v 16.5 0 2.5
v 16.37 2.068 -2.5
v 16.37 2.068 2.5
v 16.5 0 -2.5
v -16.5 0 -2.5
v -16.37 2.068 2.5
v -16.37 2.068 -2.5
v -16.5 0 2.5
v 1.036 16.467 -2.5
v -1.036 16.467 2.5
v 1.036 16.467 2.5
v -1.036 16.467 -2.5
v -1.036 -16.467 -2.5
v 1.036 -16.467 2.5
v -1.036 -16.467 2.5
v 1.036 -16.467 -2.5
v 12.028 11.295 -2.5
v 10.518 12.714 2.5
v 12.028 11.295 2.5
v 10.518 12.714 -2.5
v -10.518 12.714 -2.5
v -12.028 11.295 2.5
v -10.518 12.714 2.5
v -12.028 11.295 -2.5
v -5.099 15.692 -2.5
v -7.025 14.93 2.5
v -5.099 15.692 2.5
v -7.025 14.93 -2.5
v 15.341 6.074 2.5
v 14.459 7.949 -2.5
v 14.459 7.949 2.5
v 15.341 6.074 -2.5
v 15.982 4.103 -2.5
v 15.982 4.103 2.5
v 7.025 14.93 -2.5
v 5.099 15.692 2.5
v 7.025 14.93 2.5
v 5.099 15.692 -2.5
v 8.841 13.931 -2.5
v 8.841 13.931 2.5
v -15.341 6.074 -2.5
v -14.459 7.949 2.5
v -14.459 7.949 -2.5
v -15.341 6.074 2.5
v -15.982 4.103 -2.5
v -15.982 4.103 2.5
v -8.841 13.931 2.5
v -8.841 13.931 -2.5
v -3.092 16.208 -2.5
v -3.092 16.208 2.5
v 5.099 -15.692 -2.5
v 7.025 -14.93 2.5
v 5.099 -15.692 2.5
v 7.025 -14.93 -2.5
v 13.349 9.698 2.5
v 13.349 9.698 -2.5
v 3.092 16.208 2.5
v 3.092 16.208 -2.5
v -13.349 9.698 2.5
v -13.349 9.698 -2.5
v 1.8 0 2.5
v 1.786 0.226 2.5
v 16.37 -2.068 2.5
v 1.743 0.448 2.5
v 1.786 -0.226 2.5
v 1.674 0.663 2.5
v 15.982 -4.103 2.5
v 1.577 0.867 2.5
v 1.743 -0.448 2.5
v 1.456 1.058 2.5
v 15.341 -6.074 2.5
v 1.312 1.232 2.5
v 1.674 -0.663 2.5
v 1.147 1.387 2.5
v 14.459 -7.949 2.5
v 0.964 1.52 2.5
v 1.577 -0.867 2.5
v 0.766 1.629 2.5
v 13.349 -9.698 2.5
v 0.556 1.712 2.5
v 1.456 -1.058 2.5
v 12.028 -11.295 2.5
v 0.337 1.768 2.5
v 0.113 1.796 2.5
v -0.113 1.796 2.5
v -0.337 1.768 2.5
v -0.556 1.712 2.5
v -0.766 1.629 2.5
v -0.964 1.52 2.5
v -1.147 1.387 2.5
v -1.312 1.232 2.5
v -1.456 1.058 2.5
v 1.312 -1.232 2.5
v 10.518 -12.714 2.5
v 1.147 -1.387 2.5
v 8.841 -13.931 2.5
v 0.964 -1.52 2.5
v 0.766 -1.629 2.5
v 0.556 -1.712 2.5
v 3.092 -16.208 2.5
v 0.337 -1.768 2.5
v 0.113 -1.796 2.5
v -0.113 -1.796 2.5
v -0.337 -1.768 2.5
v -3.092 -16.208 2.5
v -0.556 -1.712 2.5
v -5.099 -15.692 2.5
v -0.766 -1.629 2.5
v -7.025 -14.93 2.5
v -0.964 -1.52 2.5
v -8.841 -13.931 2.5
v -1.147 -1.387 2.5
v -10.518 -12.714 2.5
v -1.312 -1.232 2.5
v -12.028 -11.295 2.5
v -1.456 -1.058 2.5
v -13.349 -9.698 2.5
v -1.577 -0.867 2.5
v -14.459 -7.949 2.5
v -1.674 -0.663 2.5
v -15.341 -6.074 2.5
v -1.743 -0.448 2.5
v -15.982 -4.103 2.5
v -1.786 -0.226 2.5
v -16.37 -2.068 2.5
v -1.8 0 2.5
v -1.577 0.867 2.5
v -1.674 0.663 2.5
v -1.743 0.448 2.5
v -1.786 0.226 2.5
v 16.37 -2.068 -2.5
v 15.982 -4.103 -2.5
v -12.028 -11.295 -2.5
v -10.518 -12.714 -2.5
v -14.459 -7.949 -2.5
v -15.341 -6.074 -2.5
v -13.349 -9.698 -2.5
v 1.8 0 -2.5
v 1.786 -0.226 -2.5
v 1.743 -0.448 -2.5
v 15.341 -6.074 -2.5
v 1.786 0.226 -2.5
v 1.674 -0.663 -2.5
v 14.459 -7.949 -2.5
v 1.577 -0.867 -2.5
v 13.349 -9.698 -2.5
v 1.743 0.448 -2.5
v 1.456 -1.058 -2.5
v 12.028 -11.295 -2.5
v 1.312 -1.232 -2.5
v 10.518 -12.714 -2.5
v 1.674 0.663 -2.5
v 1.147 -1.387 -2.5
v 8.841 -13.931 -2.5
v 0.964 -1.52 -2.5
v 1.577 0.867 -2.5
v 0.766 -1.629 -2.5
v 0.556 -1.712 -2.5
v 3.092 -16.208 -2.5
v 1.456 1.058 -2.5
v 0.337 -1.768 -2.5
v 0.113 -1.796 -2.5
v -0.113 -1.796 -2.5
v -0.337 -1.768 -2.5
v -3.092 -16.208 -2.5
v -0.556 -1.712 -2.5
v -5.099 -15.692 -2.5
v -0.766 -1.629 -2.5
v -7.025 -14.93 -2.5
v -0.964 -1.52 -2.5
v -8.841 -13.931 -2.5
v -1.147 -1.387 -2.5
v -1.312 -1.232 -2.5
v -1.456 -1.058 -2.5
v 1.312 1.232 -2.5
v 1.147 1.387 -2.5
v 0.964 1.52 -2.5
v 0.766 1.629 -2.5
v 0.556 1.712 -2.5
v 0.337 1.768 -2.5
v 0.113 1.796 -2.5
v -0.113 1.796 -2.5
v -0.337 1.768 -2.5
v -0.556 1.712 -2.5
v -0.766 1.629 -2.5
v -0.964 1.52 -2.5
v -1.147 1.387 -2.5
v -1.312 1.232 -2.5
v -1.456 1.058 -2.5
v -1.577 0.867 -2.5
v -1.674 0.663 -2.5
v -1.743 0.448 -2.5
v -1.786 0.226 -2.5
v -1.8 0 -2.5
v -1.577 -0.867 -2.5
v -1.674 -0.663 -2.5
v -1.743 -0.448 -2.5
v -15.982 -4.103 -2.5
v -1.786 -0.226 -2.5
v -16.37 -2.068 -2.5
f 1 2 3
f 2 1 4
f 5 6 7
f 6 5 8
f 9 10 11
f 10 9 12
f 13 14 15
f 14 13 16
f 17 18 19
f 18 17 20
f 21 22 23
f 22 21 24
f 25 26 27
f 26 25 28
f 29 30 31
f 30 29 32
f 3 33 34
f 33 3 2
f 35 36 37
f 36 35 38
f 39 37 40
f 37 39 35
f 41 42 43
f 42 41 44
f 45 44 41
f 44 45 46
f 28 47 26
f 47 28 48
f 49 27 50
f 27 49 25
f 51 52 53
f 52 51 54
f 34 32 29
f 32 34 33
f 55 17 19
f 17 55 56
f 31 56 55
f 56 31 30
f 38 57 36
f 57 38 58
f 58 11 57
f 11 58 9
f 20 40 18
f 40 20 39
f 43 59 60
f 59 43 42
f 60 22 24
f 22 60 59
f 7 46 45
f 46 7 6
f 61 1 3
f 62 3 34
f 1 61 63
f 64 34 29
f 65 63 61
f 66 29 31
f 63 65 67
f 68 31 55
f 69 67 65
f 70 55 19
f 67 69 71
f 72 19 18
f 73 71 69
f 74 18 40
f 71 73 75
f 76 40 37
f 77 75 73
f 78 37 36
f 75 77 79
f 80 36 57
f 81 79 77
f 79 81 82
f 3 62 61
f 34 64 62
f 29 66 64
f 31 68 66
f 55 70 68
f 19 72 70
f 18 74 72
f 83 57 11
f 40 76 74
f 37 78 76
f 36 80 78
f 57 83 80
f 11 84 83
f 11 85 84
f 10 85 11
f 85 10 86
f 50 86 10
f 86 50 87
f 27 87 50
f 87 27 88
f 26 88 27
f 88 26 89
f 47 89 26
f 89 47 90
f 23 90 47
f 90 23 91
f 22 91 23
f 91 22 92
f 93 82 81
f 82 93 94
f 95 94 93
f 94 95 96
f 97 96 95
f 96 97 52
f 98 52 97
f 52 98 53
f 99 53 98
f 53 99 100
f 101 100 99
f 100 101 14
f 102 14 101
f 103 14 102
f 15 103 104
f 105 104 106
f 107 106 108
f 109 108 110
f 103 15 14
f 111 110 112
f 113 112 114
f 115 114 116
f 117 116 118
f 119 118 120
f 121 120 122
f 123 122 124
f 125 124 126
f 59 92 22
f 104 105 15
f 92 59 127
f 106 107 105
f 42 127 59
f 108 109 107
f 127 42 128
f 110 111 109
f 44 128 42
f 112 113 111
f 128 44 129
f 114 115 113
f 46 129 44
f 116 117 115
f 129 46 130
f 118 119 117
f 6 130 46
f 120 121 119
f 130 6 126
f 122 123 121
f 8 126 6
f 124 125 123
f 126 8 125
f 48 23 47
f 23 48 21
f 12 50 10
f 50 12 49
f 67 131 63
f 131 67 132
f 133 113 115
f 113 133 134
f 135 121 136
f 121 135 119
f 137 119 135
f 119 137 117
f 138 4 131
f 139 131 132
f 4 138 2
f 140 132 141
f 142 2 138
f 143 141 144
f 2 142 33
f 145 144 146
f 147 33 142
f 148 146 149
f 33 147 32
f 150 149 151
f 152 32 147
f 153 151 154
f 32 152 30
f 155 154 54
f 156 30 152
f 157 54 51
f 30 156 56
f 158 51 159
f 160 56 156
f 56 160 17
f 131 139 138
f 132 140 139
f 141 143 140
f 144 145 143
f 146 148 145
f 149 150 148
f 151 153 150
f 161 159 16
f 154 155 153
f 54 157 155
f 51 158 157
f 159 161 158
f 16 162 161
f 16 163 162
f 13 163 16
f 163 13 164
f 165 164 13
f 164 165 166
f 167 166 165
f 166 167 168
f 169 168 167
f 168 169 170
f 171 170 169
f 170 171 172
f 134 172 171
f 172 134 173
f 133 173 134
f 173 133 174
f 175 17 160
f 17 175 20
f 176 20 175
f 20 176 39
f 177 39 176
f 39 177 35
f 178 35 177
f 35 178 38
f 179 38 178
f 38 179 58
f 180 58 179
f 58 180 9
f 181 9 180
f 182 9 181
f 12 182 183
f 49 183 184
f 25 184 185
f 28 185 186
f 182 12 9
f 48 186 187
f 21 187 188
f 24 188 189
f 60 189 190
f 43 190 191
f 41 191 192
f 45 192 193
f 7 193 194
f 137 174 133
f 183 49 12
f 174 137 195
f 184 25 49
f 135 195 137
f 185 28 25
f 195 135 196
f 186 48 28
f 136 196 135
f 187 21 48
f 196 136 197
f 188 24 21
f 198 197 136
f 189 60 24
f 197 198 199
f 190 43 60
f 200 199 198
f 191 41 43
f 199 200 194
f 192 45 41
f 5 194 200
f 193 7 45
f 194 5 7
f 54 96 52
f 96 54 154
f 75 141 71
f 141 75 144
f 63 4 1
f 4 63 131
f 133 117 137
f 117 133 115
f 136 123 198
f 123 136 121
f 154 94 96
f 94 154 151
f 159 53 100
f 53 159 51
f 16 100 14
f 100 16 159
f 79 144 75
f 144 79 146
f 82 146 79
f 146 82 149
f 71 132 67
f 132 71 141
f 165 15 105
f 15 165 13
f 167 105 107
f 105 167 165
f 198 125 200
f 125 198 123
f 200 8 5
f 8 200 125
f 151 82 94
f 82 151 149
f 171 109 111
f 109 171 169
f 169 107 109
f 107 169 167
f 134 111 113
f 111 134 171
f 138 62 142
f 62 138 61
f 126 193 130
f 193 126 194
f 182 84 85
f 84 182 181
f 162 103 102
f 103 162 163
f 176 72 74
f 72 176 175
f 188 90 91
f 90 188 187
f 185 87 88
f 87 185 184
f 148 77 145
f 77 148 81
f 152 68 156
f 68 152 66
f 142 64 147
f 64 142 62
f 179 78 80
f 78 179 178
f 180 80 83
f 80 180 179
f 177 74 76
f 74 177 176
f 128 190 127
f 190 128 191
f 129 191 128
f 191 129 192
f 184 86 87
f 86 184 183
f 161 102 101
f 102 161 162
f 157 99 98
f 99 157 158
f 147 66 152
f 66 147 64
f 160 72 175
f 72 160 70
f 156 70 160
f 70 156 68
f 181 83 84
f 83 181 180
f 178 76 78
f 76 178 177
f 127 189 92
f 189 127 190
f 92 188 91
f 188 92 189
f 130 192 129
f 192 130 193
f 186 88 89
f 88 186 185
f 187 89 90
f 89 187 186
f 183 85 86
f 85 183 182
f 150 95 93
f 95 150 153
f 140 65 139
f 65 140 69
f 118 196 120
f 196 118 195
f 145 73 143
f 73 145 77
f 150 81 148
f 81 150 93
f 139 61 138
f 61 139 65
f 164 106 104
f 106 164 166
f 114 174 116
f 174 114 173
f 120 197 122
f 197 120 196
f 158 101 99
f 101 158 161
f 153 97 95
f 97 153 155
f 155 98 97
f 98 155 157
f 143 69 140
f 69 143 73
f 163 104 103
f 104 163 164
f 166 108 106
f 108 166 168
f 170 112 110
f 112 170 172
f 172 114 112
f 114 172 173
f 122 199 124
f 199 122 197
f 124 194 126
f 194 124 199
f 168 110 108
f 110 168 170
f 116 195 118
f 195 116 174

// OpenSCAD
$fn = 50;


difference() {
	union() {
		translate(v = [0, 0, -2.5000000000]) {
			cylinder(h = 5, r = 16.5000000000);
		}
	}
	union() {
		translate(v = [0, 0, -100.0000000000]) {
			cylinder(h = 200, r = 1.8000000000);
		}
	}
}
